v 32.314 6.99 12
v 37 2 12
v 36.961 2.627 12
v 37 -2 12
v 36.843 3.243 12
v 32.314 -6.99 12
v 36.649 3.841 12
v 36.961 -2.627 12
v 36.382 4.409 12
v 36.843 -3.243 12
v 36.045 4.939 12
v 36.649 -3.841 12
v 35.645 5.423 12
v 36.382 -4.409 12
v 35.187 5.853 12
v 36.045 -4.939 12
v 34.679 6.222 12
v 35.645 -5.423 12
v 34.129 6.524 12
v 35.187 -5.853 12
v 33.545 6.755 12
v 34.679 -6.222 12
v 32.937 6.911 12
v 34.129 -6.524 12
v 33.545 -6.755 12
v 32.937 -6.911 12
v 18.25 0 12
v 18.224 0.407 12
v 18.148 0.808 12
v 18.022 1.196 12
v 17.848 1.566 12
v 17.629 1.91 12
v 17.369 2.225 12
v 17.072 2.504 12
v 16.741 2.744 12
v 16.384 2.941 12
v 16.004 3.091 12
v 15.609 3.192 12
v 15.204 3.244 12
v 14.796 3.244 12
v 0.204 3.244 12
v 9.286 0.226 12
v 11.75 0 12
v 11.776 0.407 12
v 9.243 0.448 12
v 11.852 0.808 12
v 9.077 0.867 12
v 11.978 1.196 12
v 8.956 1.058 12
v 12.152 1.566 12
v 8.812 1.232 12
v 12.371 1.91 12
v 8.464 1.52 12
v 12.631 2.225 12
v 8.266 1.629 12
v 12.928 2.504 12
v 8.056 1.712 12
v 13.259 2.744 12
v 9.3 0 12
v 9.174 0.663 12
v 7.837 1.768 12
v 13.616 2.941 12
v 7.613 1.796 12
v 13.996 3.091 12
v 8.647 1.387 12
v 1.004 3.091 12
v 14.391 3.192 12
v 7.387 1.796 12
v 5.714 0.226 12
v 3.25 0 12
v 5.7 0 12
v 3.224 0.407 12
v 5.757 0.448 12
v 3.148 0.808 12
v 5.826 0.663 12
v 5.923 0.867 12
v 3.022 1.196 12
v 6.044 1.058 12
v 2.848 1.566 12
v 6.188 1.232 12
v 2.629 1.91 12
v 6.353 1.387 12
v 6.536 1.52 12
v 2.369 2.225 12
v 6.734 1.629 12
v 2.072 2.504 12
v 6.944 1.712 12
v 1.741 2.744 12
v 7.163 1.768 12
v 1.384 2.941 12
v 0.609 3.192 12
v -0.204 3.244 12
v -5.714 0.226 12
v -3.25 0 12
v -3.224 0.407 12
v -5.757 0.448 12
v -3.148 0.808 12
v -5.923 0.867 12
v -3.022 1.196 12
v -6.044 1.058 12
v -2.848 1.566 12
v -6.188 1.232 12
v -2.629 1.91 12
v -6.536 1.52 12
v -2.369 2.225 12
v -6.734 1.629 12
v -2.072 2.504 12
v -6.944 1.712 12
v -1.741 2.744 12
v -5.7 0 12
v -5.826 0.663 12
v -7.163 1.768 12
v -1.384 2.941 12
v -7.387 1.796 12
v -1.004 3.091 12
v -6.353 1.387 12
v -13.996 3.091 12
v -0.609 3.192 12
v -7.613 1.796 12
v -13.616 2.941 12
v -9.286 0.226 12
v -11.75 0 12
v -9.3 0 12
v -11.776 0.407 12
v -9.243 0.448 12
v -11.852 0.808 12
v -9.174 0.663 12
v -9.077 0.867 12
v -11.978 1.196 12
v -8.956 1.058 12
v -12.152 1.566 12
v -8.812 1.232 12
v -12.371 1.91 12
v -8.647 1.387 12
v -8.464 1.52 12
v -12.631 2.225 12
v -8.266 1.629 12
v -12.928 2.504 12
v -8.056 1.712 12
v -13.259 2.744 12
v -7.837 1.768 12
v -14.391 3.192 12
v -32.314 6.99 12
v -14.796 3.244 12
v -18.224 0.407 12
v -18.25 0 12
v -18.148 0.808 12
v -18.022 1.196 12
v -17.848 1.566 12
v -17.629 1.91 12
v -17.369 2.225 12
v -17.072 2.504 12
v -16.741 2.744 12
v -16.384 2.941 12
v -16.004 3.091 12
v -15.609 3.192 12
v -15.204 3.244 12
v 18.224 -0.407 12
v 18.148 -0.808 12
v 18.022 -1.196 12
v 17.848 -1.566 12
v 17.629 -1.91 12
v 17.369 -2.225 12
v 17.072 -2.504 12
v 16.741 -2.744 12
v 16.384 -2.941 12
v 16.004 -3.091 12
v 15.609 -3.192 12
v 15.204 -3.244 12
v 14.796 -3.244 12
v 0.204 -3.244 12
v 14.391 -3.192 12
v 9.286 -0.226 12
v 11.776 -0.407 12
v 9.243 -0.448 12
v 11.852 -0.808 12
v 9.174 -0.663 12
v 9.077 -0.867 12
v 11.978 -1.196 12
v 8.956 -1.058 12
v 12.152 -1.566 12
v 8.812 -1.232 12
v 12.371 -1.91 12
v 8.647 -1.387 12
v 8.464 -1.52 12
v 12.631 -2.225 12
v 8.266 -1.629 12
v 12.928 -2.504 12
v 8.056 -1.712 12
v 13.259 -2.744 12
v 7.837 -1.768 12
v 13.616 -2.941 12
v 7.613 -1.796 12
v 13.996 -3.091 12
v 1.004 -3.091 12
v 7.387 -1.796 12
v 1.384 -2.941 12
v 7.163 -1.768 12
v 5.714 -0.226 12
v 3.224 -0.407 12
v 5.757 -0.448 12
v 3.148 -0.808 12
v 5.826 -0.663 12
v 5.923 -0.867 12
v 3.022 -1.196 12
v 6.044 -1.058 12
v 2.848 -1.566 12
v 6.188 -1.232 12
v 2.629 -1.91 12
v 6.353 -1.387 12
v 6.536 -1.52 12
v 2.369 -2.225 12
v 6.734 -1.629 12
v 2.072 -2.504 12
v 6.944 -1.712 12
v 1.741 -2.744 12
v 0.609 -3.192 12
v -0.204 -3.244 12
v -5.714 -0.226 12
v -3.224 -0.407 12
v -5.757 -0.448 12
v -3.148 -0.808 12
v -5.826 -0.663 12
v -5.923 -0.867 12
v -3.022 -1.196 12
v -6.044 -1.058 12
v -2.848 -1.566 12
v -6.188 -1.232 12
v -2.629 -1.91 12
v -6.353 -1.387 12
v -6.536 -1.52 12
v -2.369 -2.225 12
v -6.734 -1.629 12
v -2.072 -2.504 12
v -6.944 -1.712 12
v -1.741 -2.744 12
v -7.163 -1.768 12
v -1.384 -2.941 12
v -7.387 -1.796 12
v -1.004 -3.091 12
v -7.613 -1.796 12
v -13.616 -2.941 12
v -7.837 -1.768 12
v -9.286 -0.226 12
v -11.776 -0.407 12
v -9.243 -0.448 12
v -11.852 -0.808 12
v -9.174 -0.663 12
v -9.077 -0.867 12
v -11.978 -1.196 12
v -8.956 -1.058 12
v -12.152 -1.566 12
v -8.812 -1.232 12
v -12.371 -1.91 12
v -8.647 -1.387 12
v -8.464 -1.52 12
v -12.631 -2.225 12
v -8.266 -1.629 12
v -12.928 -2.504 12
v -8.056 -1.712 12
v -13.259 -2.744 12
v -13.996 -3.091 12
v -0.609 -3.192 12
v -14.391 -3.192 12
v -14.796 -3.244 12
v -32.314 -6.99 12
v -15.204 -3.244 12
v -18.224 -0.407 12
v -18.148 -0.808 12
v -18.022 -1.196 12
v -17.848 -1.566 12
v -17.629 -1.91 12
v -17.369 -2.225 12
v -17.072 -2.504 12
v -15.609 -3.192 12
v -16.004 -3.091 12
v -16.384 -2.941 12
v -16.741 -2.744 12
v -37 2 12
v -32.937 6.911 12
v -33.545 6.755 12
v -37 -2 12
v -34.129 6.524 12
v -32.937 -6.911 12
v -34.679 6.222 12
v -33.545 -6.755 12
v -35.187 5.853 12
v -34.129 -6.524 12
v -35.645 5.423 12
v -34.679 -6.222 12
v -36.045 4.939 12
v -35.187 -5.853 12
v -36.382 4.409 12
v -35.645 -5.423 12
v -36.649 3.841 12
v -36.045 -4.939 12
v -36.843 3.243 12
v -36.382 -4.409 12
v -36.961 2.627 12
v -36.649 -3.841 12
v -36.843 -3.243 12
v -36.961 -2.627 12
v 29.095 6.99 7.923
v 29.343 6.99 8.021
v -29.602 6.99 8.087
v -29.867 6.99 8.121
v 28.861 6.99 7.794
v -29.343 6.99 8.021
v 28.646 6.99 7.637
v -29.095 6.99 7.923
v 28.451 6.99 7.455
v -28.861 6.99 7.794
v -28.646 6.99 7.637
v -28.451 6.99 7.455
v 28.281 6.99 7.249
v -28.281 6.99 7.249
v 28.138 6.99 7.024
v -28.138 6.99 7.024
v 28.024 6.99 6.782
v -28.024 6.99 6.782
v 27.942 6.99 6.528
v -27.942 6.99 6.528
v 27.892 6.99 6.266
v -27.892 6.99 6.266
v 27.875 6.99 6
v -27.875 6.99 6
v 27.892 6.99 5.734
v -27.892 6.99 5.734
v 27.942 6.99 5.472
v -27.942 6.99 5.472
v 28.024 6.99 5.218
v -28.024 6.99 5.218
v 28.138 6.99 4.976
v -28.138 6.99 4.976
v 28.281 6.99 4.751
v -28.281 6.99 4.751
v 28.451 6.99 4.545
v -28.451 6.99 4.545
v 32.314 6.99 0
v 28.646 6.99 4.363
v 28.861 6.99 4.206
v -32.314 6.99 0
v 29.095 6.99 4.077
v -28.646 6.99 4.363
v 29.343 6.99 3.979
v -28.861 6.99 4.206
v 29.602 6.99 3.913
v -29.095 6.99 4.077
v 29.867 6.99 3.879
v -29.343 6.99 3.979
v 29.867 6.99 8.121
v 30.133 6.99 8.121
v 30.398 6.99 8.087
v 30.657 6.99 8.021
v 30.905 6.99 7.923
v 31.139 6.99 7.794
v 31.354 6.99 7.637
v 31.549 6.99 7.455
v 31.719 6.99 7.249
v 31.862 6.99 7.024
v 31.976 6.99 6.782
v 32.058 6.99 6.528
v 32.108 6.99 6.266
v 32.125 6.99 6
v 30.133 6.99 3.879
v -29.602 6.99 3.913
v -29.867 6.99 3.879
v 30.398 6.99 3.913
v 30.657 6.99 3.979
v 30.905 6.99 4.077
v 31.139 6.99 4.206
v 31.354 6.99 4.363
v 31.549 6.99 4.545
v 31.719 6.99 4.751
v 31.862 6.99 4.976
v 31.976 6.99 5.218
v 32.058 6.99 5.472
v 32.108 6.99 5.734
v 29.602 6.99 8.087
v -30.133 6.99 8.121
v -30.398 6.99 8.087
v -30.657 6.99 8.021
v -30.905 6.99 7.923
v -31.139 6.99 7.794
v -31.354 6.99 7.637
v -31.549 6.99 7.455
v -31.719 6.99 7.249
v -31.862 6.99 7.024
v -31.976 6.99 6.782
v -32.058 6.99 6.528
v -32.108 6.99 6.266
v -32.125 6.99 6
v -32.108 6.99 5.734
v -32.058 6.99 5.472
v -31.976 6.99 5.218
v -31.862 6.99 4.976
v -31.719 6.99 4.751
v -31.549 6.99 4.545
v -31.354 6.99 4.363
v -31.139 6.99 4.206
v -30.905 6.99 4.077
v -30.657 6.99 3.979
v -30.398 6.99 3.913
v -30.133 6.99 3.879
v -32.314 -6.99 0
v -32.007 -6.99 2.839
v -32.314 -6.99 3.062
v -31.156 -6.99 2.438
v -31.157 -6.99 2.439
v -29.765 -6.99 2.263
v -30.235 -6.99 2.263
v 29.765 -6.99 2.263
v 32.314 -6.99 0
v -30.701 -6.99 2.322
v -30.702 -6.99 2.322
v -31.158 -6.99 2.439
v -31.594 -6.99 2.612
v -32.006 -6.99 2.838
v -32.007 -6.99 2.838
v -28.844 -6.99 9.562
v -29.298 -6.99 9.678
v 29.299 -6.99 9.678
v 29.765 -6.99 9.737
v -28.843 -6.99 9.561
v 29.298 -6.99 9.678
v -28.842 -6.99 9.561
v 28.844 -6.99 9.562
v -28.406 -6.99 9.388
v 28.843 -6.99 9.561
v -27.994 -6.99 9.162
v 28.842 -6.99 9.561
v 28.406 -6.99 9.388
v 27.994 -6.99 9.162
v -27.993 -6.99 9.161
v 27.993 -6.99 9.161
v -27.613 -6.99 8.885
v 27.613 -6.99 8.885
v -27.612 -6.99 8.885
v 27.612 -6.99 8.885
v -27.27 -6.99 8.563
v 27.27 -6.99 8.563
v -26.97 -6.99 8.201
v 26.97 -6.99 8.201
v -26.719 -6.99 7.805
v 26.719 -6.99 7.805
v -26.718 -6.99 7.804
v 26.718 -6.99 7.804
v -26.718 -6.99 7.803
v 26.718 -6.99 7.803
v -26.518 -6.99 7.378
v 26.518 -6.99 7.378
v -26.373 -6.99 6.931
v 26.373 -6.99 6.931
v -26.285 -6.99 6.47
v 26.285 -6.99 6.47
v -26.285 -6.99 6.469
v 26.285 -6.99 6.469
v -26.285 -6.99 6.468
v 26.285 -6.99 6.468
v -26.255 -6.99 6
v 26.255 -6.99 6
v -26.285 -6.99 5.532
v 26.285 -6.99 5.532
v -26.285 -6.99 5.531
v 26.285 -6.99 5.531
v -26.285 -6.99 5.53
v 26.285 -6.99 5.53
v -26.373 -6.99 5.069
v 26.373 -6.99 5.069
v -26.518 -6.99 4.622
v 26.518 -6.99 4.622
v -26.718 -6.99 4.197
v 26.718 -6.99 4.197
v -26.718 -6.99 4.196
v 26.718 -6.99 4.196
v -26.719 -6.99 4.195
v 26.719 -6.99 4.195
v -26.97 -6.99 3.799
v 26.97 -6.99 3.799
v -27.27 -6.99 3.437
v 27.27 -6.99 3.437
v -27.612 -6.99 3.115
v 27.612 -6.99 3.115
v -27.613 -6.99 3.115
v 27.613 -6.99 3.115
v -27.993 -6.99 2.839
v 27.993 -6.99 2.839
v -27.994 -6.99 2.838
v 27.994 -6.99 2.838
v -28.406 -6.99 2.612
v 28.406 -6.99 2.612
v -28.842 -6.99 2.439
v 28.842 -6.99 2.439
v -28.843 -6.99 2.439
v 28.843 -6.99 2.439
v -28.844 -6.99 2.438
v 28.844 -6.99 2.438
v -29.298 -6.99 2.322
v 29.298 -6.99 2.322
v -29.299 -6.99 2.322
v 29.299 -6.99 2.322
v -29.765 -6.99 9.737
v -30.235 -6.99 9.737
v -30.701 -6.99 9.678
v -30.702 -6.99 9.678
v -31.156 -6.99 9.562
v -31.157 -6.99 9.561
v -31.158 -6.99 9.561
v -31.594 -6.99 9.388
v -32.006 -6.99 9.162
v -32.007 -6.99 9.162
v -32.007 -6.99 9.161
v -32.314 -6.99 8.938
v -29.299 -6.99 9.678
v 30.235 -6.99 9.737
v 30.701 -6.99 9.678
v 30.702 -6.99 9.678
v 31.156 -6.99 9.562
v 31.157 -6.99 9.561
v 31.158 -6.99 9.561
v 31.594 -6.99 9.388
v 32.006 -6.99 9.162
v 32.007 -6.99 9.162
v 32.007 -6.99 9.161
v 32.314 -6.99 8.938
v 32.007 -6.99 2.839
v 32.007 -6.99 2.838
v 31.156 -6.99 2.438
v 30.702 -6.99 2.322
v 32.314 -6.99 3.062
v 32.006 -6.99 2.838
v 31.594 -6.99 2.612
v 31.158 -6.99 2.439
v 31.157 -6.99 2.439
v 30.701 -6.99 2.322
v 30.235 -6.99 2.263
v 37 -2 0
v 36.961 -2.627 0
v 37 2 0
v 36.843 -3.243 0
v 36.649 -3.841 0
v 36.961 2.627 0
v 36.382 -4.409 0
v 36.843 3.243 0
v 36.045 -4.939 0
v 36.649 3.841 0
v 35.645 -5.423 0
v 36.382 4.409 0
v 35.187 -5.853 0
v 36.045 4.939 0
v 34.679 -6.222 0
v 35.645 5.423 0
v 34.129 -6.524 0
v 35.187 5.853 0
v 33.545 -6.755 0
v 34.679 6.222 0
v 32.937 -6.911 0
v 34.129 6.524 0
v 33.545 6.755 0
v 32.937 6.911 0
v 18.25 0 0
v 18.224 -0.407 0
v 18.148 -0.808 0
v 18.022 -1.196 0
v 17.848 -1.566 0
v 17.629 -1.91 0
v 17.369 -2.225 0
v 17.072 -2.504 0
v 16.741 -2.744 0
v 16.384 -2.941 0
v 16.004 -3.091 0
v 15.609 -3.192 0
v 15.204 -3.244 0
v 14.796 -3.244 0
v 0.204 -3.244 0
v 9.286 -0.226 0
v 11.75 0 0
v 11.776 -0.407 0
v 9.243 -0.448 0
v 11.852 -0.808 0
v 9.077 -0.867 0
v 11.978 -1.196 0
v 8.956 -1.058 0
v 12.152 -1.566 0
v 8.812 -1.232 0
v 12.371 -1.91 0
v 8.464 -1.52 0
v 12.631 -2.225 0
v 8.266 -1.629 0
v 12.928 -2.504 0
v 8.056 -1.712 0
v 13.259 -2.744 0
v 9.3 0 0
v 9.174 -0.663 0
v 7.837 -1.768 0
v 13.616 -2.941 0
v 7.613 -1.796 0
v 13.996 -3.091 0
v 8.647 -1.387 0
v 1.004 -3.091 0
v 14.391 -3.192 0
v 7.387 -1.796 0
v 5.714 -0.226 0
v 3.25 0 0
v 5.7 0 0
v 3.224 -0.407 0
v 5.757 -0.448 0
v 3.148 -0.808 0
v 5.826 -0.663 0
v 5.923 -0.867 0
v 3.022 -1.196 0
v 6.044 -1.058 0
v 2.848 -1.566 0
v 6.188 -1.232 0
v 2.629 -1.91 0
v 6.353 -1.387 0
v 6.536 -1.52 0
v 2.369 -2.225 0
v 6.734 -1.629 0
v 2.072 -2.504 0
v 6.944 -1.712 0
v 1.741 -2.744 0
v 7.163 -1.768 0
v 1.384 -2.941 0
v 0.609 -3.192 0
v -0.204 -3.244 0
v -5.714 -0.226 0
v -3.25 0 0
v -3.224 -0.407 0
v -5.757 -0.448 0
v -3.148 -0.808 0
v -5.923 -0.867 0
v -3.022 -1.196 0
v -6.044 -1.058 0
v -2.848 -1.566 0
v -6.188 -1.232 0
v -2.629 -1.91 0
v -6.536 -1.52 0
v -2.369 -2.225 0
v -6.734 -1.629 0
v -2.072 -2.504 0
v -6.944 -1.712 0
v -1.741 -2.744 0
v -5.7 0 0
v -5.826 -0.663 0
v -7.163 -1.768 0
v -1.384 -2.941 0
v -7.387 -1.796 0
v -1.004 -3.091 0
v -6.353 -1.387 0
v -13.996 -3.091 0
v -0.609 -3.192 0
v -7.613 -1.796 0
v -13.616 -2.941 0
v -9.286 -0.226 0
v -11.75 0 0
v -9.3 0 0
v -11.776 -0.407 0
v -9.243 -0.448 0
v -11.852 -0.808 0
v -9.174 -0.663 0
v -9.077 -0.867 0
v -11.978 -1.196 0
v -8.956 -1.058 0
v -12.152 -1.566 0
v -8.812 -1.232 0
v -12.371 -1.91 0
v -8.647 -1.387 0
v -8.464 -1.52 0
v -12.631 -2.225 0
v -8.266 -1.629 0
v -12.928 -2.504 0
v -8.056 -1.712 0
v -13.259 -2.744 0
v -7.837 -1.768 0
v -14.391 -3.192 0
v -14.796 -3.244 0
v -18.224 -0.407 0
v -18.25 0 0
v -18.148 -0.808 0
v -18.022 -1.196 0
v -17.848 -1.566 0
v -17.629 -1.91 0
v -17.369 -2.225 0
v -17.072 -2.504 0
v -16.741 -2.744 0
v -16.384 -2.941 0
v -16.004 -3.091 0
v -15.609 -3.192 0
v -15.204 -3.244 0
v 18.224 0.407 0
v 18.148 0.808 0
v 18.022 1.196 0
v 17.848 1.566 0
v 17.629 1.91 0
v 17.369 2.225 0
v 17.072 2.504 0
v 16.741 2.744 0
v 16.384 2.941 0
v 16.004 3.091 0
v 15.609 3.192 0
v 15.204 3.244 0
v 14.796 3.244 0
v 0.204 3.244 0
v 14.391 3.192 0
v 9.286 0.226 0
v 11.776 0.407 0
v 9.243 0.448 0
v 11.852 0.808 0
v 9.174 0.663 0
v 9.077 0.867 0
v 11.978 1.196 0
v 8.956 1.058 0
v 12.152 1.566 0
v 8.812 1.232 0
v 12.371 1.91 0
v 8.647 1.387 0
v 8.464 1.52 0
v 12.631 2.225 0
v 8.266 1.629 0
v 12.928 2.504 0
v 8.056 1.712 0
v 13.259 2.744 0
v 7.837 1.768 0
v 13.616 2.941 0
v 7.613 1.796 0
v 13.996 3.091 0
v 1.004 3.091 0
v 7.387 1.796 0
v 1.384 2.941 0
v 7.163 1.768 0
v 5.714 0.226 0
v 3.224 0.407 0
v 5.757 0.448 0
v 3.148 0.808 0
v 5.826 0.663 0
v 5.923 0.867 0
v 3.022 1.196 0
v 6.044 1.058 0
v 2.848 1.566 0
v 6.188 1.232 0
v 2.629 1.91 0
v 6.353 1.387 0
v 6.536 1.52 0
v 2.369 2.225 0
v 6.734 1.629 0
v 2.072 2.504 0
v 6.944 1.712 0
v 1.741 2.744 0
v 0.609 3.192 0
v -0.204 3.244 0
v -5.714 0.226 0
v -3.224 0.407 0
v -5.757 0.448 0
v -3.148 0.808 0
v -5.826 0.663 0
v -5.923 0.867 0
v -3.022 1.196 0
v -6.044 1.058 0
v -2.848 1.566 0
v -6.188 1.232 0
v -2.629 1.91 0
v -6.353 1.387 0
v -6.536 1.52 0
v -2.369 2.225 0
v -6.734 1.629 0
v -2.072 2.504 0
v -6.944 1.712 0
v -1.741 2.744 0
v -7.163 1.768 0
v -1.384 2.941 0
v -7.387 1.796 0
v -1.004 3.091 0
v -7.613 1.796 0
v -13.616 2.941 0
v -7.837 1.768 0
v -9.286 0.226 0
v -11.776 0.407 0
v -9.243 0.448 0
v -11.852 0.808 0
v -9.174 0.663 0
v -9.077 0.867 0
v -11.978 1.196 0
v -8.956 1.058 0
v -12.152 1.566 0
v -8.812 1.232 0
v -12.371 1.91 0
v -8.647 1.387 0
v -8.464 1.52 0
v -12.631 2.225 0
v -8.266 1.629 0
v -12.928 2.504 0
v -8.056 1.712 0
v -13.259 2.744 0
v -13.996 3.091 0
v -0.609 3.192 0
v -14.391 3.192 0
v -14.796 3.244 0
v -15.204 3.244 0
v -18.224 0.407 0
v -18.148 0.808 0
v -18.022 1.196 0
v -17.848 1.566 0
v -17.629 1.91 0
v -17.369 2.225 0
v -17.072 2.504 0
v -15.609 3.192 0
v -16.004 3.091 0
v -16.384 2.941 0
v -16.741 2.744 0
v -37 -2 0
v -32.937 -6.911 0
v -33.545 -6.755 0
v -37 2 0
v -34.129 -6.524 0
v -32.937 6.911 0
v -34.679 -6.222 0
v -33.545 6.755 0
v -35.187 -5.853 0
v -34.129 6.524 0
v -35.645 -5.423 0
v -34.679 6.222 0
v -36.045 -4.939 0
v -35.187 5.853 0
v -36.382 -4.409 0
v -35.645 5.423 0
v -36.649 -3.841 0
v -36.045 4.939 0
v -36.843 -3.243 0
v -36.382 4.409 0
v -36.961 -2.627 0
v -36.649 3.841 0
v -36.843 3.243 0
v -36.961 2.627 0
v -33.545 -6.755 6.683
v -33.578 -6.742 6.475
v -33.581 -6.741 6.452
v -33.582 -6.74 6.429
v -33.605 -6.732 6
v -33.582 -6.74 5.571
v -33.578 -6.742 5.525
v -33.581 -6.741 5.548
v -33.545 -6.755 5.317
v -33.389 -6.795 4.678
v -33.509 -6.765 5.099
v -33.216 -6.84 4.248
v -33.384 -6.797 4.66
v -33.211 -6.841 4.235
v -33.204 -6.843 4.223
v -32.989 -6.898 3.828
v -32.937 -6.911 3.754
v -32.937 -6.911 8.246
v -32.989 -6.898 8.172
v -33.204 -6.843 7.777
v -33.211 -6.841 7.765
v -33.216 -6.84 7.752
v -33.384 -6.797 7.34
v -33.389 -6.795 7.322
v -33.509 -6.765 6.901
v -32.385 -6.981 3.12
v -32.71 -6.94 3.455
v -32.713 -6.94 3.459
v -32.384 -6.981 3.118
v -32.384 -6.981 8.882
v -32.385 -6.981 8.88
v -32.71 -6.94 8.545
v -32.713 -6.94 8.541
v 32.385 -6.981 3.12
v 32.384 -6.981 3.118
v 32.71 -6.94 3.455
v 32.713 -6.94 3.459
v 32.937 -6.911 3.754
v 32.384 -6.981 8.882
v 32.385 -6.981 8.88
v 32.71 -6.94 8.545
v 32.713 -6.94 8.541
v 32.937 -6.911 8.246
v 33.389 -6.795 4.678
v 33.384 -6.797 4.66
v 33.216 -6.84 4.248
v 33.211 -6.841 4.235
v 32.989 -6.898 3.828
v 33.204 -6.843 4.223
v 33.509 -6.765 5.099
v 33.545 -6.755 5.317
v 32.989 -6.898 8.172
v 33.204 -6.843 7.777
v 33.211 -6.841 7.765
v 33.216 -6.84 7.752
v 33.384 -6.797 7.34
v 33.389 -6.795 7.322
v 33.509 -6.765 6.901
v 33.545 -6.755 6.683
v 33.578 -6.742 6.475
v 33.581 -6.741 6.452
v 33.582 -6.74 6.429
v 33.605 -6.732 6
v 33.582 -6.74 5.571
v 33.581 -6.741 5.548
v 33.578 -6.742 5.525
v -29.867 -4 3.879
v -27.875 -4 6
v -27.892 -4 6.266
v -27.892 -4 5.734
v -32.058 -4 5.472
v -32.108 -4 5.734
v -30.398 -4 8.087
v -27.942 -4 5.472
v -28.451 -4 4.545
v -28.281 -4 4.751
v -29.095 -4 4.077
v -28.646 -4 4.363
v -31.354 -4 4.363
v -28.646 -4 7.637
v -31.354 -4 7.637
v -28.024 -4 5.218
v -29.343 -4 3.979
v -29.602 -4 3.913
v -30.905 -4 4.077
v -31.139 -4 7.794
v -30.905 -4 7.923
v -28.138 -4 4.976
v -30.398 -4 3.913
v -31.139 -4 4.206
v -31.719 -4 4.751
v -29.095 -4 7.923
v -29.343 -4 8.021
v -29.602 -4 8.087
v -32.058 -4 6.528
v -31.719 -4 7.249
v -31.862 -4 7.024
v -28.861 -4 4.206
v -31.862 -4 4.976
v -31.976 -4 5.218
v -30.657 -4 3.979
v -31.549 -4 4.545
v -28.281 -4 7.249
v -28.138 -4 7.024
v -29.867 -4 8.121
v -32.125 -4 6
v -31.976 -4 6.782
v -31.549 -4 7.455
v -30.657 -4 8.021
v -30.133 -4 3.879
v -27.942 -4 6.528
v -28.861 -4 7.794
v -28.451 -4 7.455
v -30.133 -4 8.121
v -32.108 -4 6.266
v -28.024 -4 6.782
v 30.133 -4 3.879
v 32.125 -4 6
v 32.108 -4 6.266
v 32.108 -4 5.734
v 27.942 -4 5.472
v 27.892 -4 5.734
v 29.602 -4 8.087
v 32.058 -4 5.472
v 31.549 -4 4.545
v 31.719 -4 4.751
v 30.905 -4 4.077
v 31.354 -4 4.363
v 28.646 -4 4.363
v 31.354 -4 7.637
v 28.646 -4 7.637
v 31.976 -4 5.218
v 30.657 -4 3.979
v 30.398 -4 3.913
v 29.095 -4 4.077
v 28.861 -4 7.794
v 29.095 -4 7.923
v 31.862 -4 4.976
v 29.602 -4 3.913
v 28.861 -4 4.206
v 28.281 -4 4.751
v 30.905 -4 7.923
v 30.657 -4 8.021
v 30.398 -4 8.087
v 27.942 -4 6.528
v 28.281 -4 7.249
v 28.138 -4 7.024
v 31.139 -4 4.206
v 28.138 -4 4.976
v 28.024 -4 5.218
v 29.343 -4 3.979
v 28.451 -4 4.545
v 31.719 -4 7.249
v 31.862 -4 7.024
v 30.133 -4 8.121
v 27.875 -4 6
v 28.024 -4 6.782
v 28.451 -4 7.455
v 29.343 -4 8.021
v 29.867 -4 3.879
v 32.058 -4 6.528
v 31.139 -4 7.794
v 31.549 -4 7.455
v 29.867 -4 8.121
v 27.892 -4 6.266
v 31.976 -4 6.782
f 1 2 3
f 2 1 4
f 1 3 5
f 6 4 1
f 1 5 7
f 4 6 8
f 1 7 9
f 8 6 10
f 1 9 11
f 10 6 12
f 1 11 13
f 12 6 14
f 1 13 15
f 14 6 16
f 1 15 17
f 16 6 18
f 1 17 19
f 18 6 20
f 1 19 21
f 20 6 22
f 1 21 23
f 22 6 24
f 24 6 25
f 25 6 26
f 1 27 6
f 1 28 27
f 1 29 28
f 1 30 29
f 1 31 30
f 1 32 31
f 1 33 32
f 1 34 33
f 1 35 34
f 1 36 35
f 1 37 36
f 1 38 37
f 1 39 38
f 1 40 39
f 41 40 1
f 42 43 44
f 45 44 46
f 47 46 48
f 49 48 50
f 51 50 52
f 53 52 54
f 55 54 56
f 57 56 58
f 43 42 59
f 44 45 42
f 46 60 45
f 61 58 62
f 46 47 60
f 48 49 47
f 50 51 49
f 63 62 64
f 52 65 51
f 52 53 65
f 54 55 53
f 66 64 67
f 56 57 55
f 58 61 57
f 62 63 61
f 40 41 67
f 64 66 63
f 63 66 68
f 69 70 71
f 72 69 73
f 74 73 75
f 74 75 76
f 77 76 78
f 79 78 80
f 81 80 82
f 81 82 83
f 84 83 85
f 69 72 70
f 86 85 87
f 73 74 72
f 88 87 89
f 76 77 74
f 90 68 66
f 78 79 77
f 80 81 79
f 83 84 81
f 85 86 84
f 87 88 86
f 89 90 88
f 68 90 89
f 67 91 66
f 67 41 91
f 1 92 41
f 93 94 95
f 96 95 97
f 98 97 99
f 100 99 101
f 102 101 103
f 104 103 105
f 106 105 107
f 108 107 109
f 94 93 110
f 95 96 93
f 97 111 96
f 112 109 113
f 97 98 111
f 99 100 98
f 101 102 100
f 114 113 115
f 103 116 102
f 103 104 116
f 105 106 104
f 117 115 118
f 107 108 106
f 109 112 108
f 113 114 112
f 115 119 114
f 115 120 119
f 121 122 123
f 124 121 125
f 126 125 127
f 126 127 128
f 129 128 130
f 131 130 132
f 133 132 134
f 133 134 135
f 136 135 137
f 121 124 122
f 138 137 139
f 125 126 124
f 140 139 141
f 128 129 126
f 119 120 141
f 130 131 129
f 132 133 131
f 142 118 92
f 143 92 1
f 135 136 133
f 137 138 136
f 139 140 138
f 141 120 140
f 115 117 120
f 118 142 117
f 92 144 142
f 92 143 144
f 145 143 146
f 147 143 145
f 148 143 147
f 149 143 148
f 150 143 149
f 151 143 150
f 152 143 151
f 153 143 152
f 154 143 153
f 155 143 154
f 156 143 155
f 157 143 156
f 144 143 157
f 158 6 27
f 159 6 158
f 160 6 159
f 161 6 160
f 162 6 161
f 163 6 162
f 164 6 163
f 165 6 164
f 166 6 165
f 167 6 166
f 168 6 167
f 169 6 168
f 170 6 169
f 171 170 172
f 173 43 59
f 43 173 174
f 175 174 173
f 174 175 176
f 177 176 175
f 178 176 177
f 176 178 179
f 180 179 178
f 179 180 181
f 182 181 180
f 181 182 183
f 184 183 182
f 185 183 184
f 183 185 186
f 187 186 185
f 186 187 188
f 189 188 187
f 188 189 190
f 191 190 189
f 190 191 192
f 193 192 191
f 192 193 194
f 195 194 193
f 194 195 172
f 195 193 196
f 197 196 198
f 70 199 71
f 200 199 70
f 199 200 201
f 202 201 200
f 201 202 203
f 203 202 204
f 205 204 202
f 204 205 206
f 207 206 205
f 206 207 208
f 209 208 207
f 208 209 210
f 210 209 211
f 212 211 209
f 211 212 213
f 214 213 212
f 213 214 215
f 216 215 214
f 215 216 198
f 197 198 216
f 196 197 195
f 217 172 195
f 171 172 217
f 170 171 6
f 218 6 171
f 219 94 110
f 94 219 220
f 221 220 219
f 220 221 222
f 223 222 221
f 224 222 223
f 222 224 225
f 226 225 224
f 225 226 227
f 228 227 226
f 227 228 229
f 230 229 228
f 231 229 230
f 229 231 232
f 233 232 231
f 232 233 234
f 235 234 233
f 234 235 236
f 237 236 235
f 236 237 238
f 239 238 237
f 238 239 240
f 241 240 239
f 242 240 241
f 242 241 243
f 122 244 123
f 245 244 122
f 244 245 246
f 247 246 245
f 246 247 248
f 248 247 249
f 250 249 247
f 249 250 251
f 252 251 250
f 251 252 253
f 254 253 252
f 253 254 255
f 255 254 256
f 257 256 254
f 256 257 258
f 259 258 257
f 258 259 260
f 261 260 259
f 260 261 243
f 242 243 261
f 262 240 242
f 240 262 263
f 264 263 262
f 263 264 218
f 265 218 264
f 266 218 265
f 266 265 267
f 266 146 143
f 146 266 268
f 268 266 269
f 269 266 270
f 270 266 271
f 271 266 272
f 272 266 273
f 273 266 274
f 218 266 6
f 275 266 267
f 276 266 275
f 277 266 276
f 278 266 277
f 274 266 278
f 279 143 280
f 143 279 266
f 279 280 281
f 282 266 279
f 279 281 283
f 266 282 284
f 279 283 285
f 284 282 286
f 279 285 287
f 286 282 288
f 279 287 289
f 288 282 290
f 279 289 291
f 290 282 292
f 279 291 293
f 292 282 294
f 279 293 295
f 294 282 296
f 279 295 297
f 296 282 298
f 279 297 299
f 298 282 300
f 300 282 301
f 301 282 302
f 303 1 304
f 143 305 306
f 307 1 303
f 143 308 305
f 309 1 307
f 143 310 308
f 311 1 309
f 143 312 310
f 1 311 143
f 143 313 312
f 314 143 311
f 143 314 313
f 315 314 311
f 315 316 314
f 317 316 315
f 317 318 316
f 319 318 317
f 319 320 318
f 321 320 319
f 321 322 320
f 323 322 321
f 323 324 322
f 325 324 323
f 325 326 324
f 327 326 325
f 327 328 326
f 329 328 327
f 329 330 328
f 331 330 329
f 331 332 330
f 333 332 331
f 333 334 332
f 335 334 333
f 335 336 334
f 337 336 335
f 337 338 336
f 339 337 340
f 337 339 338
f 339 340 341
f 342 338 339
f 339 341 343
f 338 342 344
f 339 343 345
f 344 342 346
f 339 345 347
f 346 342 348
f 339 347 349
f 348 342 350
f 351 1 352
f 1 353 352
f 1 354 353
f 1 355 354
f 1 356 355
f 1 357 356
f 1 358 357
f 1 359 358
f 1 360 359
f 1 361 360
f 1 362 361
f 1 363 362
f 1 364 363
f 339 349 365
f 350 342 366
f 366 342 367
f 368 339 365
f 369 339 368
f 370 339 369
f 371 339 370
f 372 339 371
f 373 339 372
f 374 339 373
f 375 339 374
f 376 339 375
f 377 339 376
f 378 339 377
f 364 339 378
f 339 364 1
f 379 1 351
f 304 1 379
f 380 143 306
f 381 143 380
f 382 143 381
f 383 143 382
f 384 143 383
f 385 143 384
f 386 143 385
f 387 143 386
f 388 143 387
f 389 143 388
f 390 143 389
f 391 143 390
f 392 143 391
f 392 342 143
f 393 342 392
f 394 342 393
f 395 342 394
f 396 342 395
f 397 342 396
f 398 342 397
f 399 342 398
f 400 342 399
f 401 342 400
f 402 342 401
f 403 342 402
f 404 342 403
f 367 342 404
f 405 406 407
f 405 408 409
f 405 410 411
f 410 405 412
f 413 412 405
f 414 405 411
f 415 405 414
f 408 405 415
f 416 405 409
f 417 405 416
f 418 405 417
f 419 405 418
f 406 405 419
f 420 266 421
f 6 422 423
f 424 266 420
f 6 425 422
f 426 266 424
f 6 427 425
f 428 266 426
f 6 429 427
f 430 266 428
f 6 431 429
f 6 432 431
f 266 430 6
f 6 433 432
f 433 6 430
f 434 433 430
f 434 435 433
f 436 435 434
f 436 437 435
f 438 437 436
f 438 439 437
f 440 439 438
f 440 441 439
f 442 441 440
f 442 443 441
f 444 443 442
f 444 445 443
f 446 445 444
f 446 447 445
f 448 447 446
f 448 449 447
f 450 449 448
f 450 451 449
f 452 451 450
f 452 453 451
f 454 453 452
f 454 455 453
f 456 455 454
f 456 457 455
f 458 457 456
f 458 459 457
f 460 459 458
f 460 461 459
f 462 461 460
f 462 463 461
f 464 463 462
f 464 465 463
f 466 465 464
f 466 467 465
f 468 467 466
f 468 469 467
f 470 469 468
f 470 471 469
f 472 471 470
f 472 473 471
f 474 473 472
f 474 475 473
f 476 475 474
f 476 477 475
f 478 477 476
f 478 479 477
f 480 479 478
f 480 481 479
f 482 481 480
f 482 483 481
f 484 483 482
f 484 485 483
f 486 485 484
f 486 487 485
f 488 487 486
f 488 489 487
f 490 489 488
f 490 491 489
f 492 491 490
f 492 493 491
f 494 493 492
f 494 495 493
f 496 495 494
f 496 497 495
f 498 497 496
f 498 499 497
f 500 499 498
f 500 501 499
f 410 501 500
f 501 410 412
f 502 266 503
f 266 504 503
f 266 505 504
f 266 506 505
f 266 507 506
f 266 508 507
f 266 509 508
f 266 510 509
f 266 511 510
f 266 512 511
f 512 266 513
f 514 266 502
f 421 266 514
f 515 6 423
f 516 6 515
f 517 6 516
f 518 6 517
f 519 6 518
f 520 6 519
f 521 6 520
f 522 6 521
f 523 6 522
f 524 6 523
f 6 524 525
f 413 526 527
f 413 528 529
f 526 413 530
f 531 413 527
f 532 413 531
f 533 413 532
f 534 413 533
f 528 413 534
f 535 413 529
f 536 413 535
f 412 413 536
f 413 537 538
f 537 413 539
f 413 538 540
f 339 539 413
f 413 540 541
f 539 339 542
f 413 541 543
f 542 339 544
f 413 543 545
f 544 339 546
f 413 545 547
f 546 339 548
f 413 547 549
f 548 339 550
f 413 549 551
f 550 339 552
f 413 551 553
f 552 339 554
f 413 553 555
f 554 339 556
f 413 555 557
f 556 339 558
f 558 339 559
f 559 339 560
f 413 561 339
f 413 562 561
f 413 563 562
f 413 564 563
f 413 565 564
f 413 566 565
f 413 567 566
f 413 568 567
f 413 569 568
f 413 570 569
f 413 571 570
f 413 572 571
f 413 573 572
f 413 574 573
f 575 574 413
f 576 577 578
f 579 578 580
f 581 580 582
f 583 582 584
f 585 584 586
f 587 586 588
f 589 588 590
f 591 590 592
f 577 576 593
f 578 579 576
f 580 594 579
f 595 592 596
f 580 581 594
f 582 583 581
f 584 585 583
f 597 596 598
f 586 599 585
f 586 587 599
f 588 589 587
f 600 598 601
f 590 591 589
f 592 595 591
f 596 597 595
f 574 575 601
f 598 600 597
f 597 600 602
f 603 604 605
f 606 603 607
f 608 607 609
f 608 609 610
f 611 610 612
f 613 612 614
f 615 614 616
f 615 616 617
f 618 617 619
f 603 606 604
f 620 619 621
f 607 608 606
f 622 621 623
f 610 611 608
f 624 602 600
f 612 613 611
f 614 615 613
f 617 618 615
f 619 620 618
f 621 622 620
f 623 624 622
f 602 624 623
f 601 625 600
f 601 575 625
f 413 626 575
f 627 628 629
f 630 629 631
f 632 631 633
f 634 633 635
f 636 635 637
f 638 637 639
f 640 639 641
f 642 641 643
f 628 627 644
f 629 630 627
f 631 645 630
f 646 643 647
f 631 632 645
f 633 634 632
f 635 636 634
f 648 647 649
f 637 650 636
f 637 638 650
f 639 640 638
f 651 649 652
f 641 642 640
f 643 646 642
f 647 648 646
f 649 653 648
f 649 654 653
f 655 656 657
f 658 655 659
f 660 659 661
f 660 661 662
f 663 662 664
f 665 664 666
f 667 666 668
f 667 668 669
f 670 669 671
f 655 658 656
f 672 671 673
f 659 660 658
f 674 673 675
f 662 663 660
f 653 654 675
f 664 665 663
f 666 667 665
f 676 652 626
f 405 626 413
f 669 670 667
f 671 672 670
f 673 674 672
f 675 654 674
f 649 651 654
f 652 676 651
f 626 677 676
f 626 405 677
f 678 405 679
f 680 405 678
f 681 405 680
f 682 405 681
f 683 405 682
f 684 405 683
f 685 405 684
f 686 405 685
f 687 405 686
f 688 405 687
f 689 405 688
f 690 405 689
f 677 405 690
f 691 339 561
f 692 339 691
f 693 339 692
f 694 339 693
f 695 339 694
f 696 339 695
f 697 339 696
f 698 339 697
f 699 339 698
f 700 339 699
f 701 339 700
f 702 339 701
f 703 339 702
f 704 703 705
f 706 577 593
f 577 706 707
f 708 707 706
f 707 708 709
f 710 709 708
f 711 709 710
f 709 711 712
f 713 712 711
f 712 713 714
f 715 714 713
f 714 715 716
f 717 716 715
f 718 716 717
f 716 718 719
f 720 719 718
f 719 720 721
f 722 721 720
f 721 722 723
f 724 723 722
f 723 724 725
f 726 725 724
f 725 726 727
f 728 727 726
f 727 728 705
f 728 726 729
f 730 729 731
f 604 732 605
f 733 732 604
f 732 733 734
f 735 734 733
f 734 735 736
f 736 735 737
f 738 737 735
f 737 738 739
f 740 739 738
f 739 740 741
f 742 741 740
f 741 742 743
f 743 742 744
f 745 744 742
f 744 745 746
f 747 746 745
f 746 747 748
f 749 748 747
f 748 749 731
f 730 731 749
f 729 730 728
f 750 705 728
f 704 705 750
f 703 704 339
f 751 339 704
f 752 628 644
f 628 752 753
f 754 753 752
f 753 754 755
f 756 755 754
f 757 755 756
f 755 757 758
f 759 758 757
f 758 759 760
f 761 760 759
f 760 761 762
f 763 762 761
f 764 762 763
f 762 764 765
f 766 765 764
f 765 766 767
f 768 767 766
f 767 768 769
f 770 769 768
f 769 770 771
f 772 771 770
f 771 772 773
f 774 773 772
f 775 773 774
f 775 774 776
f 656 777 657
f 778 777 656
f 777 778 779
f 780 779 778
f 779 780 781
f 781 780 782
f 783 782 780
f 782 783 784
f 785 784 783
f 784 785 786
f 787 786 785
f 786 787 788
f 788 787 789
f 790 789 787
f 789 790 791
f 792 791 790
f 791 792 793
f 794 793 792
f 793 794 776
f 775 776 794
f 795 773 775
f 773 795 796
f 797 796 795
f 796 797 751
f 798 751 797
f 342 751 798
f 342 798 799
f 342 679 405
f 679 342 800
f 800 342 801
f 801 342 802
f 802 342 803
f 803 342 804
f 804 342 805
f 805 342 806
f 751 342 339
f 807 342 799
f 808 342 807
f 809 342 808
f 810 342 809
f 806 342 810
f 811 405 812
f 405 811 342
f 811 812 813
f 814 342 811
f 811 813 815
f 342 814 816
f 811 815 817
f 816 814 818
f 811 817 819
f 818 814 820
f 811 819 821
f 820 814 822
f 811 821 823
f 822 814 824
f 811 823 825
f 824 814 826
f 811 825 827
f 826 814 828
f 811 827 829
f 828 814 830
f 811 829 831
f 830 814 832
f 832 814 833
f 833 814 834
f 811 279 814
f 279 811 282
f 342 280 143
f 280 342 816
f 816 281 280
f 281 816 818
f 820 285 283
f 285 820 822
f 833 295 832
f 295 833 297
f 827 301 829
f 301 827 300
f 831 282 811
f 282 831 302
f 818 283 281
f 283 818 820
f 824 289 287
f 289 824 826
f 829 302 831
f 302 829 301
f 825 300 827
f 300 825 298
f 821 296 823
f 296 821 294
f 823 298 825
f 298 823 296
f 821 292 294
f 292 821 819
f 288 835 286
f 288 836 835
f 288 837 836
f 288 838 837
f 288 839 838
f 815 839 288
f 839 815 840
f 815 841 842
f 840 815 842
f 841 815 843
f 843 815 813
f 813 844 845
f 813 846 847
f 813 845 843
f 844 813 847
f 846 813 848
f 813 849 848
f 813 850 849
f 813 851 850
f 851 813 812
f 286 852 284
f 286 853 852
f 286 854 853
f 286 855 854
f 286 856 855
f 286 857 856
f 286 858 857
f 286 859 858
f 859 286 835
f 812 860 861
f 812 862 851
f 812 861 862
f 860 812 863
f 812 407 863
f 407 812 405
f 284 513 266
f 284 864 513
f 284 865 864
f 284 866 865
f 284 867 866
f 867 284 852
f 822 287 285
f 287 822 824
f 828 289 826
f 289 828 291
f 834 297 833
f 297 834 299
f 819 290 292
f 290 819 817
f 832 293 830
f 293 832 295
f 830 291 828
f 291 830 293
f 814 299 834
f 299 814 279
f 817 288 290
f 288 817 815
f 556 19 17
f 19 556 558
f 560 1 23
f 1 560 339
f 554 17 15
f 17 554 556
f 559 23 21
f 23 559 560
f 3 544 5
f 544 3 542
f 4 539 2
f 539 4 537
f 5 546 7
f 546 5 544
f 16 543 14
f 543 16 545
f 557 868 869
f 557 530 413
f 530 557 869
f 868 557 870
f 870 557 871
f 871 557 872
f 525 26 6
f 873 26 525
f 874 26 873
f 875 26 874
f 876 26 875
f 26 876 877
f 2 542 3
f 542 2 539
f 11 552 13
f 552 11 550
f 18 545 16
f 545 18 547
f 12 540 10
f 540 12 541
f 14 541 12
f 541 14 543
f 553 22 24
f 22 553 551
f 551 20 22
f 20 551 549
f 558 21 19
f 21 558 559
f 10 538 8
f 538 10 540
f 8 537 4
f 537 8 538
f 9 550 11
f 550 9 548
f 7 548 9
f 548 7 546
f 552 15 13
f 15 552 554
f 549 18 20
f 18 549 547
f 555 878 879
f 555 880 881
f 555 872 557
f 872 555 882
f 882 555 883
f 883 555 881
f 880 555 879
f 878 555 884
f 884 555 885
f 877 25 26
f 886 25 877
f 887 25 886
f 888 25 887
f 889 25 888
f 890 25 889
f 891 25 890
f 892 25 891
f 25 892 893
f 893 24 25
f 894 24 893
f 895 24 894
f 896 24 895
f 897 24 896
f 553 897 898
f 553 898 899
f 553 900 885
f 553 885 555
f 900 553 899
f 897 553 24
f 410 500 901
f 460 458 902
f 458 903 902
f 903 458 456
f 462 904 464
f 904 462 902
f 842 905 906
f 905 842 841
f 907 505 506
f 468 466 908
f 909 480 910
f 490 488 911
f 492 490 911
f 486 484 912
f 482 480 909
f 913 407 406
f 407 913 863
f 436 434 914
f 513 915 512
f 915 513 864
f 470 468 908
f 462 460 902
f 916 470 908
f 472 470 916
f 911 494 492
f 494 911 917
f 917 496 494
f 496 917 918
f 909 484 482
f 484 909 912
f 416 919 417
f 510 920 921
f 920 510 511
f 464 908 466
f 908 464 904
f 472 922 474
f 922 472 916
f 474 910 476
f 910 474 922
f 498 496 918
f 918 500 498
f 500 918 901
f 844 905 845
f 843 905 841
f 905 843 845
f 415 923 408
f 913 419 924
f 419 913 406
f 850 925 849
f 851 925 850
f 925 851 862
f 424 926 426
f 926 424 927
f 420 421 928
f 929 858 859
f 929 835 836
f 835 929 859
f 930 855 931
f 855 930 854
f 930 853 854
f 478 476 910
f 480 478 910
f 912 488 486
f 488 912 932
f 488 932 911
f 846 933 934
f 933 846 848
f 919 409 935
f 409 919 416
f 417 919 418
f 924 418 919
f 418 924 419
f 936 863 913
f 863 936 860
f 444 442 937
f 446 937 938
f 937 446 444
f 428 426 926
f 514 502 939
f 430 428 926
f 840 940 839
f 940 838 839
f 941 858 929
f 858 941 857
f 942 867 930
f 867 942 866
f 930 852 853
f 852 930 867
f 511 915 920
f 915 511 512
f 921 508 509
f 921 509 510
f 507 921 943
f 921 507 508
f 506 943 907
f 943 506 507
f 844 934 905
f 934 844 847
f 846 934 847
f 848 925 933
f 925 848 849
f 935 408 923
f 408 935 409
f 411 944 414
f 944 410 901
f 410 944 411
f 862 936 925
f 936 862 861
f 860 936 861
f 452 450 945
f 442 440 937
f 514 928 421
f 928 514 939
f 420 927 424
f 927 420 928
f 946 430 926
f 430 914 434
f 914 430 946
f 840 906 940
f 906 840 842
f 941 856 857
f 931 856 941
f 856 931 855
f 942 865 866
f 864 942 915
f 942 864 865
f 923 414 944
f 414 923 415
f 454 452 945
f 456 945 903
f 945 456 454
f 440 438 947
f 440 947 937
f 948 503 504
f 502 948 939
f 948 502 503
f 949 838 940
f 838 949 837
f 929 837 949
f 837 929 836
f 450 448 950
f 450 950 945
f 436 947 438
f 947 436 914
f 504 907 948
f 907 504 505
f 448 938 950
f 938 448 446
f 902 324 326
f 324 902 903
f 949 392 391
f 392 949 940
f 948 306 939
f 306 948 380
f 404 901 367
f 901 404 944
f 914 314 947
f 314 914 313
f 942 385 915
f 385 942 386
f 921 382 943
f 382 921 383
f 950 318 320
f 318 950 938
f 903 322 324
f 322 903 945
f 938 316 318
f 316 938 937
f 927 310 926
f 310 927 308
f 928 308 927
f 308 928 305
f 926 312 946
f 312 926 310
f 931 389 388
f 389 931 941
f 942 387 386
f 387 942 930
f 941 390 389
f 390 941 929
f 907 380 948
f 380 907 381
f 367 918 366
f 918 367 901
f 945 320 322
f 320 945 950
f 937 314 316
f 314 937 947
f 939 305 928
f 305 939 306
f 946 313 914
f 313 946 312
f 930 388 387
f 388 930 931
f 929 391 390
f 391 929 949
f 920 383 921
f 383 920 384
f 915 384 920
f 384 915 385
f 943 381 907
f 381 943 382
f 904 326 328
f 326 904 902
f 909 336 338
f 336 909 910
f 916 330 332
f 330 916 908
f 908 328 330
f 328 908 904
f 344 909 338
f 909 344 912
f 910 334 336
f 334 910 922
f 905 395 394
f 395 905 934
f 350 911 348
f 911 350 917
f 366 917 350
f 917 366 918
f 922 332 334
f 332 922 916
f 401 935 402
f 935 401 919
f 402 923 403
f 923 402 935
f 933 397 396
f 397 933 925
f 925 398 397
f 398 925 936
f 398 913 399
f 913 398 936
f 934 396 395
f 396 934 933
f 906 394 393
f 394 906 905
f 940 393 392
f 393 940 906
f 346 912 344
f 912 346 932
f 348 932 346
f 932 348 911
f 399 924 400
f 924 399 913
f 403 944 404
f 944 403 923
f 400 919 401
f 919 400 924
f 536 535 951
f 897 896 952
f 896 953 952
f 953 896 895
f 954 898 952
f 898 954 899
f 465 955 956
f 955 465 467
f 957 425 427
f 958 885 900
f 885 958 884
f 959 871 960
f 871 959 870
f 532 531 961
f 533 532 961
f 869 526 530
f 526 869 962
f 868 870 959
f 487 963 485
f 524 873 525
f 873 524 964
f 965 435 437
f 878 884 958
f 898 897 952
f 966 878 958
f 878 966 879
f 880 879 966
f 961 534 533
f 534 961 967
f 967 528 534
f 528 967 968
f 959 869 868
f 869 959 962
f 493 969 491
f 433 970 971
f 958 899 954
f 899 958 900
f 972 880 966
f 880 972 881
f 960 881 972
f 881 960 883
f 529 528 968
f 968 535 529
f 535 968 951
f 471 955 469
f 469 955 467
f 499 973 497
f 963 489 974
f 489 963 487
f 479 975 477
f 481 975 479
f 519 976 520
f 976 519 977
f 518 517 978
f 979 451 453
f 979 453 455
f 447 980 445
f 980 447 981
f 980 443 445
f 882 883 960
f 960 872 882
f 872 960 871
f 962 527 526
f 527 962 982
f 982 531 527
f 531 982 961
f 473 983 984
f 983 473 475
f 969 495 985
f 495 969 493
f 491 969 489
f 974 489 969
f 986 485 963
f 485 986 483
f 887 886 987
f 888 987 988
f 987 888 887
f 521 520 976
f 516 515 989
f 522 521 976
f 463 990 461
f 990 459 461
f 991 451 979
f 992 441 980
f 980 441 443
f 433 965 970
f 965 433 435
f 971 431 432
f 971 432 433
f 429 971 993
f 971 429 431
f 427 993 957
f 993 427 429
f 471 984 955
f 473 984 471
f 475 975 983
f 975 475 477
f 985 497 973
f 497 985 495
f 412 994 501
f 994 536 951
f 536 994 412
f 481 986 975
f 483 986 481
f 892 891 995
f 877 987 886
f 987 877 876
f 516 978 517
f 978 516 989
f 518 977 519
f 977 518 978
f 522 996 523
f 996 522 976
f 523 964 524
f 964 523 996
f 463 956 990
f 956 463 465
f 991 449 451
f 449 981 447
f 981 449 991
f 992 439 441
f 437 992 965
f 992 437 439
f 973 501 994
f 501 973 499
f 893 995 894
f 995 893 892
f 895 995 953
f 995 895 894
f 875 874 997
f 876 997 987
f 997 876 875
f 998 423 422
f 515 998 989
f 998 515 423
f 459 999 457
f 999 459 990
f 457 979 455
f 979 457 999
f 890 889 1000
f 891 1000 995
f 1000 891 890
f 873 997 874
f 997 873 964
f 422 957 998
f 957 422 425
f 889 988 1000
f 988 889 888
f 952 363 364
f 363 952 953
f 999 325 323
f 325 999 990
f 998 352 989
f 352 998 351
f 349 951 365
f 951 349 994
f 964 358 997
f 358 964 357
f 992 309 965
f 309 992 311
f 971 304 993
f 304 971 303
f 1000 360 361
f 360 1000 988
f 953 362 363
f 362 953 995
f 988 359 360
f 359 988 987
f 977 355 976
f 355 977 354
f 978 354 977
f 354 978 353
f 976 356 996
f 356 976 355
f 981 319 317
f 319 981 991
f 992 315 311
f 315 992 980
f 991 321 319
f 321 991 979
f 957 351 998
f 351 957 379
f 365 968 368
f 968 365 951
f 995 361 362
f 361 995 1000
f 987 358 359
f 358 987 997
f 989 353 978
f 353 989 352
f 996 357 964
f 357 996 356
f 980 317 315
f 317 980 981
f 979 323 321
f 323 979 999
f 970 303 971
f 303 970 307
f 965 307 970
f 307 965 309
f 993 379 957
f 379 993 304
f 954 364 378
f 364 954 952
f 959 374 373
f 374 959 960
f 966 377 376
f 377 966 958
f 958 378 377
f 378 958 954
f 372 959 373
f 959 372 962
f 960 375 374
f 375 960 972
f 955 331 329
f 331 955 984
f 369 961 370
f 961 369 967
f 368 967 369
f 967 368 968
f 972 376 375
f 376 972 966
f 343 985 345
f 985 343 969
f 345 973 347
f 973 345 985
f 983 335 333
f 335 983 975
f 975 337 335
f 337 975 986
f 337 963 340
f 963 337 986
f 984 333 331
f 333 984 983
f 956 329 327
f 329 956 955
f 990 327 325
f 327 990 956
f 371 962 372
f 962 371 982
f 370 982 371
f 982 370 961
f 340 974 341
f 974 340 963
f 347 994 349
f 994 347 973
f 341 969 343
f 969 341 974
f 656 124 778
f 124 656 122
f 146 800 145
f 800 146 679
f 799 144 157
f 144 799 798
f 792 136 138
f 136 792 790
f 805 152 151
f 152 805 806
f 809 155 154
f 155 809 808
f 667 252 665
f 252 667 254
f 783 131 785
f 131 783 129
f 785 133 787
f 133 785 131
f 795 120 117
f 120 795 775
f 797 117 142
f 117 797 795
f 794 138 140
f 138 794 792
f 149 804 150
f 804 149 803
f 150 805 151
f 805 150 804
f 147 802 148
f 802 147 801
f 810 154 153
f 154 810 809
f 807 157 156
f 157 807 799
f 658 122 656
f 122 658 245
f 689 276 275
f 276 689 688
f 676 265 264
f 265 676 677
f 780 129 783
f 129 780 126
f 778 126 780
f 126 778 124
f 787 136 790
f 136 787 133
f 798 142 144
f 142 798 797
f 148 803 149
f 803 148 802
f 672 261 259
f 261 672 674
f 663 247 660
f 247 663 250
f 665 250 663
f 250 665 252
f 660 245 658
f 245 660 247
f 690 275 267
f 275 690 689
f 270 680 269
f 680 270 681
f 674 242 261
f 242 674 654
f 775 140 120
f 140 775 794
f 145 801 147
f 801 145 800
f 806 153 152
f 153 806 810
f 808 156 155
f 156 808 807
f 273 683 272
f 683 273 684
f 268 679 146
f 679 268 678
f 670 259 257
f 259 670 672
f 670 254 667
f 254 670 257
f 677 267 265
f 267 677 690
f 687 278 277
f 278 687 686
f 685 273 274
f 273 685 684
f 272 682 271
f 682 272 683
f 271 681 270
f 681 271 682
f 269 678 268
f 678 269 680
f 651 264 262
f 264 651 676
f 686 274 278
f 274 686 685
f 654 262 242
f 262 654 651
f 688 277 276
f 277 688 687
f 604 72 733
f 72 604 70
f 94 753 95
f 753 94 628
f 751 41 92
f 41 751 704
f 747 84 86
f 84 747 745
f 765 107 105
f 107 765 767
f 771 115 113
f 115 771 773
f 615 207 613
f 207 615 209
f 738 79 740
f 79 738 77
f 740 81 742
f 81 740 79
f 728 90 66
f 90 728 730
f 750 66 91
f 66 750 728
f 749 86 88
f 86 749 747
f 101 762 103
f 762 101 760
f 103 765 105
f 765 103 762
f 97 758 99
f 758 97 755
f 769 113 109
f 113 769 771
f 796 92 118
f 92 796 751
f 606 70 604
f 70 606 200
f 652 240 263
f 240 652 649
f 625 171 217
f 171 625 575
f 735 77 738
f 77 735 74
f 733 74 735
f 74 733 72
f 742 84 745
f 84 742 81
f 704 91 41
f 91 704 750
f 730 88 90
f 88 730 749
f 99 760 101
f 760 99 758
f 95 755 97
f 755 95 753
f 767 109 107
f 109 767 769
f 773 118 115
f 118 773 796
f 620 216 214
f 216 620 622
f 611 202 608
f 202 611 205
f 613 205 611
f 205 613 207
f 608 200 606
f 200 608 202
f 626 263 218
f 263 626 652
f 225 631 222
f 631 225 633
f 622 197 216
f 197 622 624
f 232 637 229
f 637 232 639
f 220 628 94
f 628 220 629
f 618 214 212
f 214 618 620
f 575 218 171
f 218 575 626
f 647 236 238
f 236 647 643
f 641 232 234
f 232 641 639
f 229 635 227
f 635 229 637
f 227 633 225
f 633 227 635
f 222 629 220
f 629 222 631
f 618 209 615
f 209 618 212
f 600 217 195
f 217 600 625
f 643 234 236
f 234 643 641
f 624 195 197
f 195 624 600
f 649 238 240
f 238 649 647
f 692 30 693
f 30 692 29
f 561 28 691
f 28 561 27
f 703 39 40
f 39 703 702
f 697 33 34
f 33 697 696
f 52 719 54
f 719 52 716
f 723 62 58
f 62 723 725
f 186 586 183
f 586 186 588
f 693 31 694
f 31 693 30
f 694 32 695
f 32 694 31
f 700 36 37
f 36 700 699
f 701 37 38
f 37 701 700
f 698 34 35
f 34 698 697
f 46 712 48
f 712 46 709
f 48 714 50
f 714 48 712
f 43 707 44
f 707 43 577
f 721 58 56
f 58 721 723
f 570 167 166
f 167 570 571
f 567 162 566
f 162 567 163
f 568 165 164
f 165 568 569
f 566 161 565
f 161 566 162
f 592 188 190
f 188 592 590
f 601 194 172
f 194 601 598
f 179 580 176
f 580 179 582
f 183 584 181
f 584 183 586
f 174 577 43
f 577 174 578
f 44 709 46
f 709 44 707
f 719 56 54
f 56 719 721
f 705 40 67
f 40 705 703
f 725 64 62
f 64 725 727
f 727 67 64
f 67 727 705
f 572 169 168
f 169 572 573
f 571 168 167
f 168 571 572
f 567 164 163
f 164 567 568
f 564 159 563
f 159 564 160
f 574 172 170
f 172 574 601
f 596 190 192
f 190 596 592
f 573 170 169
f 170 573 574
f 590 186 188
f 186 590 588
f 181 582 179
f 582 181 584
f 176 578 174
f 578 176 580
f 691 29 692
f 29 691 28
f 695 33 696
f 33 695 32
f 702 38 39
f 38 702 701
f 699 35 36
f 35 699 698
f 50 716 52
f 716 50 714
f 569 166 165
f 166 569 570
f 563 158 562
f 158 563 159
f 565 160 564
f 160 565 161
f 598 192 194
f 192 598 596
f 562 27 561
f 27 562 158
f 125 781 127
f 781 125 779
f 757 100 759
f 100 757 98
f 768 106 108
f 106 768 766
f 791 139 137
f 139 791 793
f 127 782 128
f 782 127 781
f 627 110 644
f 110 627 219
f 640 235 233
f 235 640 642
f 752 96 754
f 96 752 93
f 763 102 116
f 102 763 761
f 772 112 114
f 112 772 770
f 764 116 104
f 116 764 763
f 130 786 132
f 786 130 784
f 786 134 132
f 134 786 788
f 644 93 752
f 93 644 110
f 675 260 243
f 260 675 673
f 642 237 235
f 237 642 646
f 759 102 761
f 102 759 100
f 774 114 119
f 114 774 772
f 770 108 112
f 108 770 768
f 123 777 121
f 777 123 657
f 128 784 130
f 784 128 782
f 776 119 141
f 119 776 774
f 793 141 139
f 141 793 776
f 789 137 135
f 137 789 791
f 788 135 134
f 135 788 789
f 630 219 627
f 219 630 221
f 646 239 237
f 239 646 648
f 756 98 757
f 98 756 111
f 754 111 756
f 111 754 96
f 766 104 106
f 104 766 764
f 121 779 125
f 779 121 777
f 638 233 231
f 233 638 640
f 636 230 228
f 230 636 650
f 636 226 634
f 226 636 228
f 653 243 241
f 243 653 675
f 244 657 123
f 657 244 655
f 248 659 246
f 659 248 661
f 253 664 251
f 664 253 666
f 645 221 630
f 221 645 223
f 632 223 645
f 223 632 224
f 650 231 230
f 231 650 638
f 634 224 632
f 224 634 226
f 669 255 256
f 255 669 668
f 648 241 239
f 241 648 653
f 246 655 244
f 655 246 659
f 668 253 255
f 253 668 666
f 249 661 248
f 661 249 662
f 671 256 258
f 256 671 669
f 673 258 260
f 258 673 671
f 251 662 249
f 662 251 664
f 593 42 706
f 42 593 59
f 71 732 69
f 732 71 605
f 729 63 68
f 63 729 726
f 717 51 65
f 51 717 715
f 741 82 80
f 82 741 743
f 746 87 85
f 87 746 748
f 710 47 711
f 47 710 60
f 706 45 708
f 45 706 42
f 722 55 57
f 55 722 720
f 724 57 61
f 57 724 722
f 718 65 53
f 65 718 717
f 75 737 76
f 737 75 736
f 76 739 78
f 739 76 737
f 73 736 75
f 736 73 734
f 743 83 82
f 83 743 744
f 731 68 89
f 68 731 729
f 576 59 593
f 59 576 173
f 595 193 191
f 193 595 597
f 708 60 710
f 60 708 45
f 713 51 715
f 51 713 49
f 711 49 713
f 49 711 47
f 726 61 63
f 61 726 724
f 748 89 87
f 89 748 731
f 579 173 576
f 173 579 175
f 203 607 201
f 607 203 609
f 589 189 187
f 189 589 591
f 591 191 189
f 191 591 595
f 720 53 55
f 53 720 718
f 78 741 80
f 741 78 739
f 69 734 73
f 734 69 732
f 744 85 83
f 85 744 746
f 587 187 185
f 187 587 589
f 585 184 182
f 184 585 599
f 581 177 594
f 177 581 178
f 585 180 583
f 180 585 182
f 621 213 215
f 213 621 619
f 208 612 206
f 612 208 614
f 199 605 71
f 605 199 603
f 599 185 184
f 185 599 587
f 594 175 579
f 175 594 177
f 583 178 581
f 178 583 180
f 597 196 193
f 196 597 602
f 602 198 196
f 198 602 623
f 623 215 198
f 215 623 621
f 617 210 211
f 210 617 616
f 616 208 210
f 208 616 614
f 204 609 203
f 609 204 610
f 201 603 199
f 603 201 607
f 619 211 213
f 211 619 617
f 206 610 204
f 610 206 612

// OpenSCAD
$fn = 50;


difference() {
	union() {
		hull() {
			translate(v = [-17.0000000000, 2.0000000000, 0]) {
				cylinder(h = 12, r = 5);
			}
			translate(v = [17.0000000000, 2.0000000000, 0]) {
				cylinder(h = 12, r = 5);
			}
			translate(v = [-17.0000000000, -2.0000000000, 0]) {
				cylinder(h = 12, r = 5);
			}
			translate(v = [17.0000000000, -2.0000000000, 0]) {
				cylinder(h = 12, r = 5);
			}
		}
		translate(v = [-22.5000000000, 0.0000000000, 0]) {
			hull() {
				translate(v = [-9.5000000000, 2.0000000000, 0]) {
					cylinder(h = 12, r = 5);
				}
				translate(v = [9.5000000000, 2.0000000000, 0]) {
					cylinder(h = 12, r = 5);
				}
				translate(v = [-9.5000000000, -2.0000000000, 0]) {
					cylinder(h = 12, r = 5);
				}
				translate(v = [9.5000000000, -2.0000000000, 0]) {
					cylinder(h = 12, r = 5);
				}
			}
		}
		translate(v = [22.5000000000, 0.0000000000, 0]) {
			hull() {
				translate(v = [-9.5000000000, 2.0000000000, 0]) {
					cylinder(h = 12, r = 5);
				}
				translate(v = [9.5000000000, 2.0000000000, 0]) {
					cylinder(h = 12, r = 5);
				}
				translate(v = [-9.5000000000, -2.0000000000, 0]) {
					cylinder(h = 12, r = 5);
				}
				translate(v = [9.5000000000, -2.0000000000, 0]) {
					cylinder(h = 12, r = 5);
				}
			}
		}
	}
	union() {
		translate(v = [-30.0000000000, -7.0000000000, 6.0000000000]) {
			rotate(a = [90, 0, 0]) {
				difference() {
					union() {
						#translate(v = [0, 0, -14.0000000000]) {
							cylinder(h = 14, r = 2.0000000000);
						}
						#translate(v = [0, 0, -3]) {
							cylinder(h = 3, r1 = 2.1250000000, r2 = 3.7500000000);
						}
						#translate(v = [0, 0, -14.0000000000]) {
							cylinder(h = 14, r = 2.1250000000);
						}
						#translate(v = [0, 0, -14.0000000000]) {
							cylinder(h = 14, r = 2.0000000000);
						}
					}
					union();
				}
			}
		}
		translate(v = [30.0000000000, -7.0000000000, 6.0000000000]) {
			rotate(a = [90, 0, 0]) {
				difference() {
					union() {
						#translate(v = [0, 0, -14.0000000000]) {
							cylinder(h = 14, r = 2.0000000000);
						}
						#translate(v = [0, 0, -3]) {
							cylinder(h = 3, r1 = 2.1250000000, r2 = 3.7500000000);
						}
						#translate(v = [0, 0, -14.0000000000]) {
							cylinder(h = 14, r = 2.1250000000);
						}
						#translate(v = [0, 0, -14.0000000000]) {
							cylinder(h = 14, r = 2.0000000000);
						}
					}
					union();
				}
			}
		}
		translate(v = [-15.0000000000, 0.0000000000, 0]) {
			translate(v = [0, 0, -100]) {
				cylinder(h = 200, r = 3.2500000000);
			}
		}
		translate(v = [0, 0, -100]) {
			cylinder(h = 200, r = 3.2500000000);
		}
		translate(v = [15.0000000000, 0.0000000000, 0]) {
			translate(v = [0, 0, -100]) {
				cylinder(h = 200, r = 3.2500000000);
			}
		}
		translate(v = [-15.0000000000, 0.0000000000, 0]) {
			translate(v = [0, 0, -100]) {
				cylinder(h = 200, r = 1.8000000000);
			}
		}
		translate(v = [-7.5000000000, 0.0000000000, 0]) {
			translate(v = [0, 0, -100]) {
				cylinder(h = 200, r = 1.8000000000);
			}
		}
		translate(v = [0, 0, -100]) {
			cylinder(h = 200, r = 1.8000000000);
		}
		translate(v = [7.5000000000, 0.0000000000, 0]) {
			translate(v = [0, 0, -100]) {
				cylinder(h = 200, r = 1.8000000000);
			}
		}
		translate(v = [15.0000000000, 0.0000000000, 0]) {
			translate(v = [0, 0, -100]) {
				cylinder(h = 200, r = 1.8000000000);
			}
		}
	}
}
